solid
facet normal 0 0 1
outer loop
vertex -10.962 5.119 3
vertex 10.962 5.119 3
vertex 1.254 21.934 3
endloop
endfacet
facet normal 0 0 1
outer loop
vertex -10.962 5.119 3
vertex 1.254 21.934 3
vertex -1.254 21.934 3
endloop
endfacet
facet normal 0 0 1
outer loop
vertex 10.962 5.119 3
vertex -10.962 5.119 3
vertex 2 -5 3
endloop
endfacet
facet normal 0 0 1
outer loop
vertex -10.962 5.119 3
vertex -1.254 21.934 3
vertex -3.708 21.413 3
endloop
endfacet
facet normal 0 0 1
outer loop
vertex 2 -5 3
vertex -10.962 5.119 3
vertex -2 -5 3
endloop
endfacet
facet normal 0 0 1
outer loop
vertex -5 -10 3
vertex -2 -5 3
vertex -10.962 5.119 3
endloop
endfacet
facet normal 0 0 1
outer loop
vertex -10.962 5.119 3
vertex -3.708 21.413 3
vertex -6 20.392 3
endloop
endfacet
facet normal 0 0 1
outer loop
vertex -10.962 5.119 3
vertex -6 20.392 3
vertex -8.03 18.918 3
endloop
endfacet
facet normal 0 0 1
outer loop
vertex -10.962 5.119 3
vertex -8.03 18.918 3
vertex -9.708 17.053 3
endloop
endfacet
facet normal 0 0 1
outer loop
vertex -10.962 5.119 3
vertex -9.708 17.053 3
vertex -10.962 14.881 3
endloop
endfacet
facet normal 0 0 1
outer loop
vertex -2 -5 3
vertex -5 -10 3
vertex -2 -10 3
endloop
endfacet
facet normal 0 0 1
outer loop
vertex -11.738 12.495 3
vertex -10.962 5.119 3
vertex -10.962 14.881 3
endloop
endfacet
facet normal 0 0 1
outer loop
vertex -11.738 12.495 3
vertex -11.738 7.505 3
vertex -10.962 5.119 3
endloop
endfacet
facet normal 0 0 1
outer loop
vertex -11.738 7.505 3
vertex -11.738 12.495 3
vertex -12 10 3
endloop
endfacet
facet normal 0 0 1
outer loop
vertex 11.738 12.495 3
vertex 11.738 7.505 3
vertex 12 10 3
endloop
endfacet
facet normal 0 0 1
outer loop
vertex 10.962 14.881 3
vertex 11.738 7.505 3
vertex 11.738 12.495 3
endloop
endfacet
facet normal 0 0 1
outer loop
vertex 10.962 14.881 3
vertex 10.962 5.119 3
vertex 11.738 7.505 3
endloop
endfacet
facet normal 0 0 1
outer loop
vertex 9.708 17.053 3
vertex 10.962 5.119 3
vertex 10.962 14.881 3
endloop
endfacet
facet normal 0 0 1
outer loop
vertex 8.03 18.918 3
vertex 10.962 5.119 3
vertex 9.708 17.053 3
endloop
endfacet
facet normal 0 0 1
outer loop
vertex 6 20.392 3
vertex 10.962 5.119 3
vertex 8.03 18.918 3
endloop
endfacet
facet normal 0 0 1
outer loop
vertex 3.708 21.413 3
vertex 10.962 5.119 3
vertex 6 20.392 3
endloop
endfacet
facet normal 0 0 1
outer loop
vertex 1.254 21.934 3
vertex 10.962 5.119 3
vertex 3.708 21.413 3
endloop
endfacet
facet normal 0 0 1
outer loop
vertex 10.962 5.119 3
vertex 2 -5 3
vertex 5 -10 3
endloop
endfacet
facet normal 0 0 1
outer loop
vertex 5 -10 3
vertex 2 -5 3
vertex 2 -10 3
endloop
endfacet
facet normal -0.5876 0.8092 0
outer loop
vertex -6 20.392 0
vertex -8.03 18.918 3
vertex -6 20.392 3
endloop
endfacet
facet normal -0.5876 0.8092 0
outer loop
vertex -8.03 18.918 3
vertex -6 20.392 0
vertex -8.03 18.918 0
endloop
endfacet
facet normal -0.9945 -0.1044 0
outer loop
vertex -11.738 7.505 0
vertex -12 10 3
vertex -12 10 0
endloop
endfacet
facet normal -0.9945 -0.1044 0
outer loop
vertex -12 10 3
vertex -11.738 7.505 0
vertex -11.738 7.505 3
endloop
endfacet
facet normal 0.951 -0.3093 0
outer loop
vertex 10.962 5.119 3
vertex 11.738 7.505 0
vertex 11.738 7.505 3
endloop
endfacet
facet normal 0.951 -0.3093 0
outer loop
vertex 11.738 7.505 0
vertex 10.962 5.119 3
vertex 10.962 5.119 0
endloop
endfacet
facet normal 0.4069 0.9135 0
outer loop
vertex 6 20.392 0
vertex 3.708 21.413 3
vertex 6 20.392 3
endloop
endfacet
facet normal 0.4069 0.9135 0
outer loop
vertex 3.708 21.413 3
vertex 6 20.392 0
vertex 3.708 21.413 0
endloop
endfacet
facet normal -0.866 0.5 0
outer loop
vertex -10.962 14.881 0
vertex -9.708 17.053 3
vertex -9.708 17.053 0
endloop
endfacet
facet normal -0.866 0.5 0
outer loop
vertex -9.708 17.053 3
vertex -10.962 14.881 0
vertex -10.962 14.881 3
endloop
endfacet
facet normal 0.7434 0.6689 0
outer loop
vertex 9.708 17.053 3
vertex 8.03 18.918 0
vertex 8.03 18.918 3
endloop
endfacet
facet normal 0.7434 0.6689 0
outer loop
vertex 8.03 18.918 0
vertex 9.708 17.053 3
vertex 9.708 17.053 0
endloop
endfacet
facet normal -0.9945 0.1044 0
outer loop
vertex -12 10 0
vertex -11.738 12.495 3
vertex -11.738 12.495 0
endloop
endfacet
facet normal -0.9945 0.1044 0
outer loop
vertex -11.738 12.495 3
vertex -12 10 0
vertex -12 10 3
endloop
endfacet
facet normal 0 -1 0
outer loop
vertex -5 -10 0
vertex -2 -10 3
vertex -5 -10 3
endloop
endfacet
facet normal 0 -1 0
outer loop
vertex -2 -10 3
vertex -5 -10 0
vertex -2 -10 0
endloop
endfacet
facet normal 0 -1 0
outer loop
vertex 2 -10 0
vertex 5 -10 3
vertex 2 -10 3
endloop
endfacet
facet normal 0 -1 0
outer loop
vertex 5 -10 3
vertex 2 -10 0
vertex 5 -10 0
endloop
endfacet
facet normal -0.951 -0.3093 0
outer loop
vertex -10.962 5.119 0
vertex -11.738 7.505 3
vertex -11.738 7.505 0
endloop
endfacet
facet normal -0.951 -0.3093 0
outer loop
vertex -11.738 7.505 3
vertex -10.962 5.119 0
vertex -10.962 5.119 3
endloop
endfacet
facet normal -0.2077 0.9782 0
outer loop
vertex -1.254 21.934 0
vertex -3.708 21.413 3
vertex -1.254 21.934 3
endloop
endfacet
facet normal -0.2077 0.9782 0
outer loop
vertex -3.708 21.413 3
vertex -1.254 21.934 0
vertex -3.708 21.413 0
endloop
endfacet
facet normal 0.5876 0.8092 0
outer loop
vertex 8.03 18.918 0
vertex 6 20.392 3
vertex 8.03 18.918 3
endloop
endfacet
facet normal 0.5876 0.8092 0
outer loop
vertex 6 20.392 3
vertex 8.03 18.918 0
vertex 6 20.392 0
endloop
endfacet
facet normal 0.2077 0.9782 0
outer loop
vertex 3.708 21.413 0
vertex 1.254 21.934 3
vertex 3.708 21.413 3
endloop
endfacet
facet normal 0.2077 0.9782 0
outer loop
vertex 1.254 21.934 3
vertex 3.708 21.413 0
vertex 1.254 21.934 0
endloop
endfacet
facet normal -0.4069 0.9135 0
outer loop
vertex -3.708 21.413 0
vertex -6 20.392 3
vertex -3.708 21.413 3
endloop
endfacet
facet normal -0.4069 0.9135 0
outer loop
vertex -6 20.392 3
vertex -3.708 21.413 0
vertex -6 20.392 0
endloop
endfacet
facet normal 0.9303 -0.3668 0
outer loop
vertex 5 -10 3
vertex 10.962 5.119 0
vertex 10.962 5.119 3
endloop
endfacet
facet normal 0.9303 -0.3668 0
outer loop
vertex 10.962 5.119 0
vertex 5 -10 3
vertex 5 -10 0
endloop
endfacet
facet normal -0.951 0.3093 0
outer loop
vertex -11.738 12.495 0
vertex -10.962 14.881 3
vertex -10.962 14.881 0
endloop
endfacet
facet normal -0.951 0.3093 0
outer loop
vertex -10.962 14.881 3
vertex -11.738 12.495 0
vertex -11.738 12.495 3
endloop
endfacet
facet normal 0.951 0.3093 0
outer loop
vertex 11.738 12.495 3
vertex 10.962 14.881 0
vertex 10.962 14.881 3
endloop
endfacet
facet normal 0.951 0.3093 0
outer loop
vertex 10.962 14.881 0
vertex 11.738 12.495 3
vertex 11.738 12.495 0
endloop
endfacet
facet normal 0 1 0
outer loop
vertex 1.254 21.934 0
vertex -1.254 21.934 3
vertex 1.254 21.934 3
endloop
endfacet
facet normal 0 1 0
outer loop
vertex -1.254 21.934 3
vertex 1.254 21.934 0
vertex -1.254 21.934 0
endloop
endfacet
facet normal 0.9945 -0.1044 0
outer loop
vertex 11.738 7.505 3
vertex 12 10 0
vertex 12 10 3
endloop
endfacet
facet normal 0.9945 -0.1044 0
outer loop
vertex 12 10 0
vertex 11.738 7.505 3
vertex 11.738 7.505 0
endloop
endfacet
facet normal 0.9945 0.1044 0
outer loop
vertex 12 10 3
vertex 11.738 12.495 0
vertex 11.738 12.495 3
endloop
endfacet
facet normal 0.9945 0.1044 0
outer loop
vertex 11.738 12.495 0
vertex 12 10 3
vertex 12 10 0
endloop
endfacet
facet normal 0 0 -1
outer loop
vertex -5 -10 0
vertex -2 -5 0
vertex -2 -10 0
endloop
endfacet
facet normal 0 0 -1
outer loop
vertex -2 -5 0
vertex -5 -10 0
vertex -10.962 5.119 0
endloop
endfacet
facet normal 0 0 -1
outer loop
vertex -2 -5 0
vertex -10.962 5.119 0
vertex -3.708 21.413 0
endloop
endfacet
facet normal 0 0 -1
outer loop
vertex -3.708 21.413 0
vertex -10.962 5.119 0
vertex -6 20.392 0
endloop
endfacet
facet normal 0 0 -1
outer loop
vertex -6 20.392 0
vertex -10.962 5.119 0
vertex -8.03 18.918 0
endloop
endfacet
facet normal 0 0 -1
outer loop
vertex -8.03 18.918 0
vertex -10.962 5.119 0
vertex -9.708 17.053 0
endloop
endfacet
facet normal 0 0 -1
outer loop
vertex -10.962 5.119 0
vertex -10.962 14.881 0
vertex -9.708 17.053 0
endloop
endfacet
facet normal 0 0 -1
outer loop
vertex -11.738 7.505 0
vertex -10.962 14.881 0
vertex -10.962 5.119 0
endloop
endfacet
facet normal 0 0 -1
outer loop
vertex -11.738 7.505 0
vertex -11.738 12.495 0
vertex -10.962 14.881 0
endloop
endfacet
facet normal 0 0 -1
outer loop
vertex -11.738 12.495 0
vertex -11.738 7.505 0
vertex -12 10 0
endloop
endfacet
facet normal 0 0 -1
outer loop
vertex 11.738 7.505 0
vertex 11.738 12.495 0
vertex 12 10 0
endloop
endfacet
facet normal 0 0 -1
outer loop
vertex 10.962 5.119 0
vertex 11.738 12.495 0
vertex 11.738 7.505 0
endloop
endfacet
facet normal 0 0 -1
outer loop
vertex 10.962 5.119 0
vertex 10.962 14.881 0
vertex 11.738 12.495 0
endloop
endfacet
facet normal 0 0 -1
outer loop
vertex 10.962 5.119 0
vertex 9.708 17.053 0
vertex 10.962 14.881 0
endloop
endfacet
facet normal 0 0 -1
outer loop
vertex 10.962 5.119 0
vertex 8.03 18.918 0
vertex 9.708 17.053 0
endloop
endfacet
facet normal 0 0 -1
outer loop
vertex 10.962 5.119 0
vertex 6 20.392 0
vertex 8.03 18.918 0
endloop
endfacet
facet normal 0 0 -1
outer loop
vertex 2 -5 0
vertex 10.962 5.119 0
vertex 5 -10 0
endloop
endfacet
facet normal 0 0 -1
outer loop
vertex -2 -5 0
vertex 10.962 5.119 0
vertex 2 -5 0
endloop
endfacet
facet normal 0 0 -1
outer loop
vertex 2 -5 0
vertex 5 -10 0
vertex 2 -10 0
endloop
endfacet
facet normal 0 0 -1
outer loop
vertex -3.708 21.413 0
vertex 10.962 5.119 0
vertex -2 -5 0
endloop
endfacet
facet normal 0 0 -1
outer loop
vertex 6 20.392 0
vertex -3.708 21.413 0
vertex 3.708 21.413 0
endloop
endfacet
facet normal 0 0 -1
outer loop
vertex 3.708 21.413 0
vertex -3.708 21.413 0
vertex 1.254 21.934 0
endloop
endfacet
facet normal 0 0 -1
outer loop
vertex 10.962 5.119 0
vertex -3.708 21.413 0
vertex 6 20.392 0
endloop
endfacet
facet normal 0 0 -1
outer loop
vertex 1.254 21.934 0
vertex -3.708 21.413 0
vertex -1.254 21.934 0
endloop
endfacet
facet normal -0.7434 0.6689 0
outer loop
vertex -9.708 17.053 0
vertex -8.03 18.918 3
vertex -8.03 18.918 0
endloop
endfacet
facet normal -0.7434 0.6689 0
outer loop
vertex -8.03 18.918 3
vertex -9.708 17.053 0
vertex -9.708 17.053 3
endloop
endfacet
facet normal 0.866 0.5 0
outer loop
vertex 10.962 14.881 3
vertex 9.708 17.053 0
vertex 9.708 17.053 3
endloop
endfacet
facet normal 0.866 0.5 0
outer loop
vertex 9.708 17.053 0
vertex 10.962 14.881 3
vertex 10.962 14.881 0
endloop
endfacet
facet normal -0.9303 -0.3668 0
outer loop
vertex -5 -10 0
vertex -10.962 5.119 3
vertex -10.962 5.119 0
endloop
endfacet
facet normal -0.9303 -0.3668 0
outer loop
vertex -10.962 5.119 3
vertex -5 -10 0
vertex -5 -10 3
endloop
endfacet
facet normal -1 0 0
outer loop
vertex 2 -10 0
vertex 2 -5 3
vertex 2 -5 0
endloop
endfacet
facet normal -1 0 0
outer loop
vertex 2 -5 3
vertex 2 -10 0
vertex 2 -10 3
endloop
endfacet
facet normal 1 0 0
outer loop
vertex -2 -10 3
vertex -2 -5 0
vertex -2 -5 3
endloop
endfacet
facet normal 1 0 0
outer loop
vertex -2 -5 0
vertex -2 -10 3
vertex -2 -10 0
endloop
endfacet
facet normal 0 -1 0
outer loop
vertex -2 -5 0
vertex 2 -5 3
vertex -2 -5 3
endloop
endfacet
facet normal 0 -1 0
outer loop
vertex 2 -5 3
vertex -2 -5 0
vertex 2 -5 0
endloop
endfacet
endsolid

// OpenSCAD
// Clip dimensions
clip_width = 10;
clip_height = 20;
clip_thickness = 3;
cutout_width = 4;
cutout_height = 5;
top_curve_radius = 12;

// Module to create the clip
module clip() {
    difference() {
        // Main body of the clip
        hull() {
            translate([0, 0, clip_thickness / 2])
                cube([clip_width, clip_height, clip_thickness], center=true);
            translate([0, clip_height / 2, clip_thickness / 2])
                cylinder(r=top_curve_radius, h=clip_thickness, center=true);
        }
        
        // U-shaped cutout at the bottom
        translate([-cutout_width / 2, -clip_height / 2, -clip_thickness])
            cube([cutout_width, cutout_height, clip_thickness * 2], center=false);
    }
}

// Render the clip
clip();
